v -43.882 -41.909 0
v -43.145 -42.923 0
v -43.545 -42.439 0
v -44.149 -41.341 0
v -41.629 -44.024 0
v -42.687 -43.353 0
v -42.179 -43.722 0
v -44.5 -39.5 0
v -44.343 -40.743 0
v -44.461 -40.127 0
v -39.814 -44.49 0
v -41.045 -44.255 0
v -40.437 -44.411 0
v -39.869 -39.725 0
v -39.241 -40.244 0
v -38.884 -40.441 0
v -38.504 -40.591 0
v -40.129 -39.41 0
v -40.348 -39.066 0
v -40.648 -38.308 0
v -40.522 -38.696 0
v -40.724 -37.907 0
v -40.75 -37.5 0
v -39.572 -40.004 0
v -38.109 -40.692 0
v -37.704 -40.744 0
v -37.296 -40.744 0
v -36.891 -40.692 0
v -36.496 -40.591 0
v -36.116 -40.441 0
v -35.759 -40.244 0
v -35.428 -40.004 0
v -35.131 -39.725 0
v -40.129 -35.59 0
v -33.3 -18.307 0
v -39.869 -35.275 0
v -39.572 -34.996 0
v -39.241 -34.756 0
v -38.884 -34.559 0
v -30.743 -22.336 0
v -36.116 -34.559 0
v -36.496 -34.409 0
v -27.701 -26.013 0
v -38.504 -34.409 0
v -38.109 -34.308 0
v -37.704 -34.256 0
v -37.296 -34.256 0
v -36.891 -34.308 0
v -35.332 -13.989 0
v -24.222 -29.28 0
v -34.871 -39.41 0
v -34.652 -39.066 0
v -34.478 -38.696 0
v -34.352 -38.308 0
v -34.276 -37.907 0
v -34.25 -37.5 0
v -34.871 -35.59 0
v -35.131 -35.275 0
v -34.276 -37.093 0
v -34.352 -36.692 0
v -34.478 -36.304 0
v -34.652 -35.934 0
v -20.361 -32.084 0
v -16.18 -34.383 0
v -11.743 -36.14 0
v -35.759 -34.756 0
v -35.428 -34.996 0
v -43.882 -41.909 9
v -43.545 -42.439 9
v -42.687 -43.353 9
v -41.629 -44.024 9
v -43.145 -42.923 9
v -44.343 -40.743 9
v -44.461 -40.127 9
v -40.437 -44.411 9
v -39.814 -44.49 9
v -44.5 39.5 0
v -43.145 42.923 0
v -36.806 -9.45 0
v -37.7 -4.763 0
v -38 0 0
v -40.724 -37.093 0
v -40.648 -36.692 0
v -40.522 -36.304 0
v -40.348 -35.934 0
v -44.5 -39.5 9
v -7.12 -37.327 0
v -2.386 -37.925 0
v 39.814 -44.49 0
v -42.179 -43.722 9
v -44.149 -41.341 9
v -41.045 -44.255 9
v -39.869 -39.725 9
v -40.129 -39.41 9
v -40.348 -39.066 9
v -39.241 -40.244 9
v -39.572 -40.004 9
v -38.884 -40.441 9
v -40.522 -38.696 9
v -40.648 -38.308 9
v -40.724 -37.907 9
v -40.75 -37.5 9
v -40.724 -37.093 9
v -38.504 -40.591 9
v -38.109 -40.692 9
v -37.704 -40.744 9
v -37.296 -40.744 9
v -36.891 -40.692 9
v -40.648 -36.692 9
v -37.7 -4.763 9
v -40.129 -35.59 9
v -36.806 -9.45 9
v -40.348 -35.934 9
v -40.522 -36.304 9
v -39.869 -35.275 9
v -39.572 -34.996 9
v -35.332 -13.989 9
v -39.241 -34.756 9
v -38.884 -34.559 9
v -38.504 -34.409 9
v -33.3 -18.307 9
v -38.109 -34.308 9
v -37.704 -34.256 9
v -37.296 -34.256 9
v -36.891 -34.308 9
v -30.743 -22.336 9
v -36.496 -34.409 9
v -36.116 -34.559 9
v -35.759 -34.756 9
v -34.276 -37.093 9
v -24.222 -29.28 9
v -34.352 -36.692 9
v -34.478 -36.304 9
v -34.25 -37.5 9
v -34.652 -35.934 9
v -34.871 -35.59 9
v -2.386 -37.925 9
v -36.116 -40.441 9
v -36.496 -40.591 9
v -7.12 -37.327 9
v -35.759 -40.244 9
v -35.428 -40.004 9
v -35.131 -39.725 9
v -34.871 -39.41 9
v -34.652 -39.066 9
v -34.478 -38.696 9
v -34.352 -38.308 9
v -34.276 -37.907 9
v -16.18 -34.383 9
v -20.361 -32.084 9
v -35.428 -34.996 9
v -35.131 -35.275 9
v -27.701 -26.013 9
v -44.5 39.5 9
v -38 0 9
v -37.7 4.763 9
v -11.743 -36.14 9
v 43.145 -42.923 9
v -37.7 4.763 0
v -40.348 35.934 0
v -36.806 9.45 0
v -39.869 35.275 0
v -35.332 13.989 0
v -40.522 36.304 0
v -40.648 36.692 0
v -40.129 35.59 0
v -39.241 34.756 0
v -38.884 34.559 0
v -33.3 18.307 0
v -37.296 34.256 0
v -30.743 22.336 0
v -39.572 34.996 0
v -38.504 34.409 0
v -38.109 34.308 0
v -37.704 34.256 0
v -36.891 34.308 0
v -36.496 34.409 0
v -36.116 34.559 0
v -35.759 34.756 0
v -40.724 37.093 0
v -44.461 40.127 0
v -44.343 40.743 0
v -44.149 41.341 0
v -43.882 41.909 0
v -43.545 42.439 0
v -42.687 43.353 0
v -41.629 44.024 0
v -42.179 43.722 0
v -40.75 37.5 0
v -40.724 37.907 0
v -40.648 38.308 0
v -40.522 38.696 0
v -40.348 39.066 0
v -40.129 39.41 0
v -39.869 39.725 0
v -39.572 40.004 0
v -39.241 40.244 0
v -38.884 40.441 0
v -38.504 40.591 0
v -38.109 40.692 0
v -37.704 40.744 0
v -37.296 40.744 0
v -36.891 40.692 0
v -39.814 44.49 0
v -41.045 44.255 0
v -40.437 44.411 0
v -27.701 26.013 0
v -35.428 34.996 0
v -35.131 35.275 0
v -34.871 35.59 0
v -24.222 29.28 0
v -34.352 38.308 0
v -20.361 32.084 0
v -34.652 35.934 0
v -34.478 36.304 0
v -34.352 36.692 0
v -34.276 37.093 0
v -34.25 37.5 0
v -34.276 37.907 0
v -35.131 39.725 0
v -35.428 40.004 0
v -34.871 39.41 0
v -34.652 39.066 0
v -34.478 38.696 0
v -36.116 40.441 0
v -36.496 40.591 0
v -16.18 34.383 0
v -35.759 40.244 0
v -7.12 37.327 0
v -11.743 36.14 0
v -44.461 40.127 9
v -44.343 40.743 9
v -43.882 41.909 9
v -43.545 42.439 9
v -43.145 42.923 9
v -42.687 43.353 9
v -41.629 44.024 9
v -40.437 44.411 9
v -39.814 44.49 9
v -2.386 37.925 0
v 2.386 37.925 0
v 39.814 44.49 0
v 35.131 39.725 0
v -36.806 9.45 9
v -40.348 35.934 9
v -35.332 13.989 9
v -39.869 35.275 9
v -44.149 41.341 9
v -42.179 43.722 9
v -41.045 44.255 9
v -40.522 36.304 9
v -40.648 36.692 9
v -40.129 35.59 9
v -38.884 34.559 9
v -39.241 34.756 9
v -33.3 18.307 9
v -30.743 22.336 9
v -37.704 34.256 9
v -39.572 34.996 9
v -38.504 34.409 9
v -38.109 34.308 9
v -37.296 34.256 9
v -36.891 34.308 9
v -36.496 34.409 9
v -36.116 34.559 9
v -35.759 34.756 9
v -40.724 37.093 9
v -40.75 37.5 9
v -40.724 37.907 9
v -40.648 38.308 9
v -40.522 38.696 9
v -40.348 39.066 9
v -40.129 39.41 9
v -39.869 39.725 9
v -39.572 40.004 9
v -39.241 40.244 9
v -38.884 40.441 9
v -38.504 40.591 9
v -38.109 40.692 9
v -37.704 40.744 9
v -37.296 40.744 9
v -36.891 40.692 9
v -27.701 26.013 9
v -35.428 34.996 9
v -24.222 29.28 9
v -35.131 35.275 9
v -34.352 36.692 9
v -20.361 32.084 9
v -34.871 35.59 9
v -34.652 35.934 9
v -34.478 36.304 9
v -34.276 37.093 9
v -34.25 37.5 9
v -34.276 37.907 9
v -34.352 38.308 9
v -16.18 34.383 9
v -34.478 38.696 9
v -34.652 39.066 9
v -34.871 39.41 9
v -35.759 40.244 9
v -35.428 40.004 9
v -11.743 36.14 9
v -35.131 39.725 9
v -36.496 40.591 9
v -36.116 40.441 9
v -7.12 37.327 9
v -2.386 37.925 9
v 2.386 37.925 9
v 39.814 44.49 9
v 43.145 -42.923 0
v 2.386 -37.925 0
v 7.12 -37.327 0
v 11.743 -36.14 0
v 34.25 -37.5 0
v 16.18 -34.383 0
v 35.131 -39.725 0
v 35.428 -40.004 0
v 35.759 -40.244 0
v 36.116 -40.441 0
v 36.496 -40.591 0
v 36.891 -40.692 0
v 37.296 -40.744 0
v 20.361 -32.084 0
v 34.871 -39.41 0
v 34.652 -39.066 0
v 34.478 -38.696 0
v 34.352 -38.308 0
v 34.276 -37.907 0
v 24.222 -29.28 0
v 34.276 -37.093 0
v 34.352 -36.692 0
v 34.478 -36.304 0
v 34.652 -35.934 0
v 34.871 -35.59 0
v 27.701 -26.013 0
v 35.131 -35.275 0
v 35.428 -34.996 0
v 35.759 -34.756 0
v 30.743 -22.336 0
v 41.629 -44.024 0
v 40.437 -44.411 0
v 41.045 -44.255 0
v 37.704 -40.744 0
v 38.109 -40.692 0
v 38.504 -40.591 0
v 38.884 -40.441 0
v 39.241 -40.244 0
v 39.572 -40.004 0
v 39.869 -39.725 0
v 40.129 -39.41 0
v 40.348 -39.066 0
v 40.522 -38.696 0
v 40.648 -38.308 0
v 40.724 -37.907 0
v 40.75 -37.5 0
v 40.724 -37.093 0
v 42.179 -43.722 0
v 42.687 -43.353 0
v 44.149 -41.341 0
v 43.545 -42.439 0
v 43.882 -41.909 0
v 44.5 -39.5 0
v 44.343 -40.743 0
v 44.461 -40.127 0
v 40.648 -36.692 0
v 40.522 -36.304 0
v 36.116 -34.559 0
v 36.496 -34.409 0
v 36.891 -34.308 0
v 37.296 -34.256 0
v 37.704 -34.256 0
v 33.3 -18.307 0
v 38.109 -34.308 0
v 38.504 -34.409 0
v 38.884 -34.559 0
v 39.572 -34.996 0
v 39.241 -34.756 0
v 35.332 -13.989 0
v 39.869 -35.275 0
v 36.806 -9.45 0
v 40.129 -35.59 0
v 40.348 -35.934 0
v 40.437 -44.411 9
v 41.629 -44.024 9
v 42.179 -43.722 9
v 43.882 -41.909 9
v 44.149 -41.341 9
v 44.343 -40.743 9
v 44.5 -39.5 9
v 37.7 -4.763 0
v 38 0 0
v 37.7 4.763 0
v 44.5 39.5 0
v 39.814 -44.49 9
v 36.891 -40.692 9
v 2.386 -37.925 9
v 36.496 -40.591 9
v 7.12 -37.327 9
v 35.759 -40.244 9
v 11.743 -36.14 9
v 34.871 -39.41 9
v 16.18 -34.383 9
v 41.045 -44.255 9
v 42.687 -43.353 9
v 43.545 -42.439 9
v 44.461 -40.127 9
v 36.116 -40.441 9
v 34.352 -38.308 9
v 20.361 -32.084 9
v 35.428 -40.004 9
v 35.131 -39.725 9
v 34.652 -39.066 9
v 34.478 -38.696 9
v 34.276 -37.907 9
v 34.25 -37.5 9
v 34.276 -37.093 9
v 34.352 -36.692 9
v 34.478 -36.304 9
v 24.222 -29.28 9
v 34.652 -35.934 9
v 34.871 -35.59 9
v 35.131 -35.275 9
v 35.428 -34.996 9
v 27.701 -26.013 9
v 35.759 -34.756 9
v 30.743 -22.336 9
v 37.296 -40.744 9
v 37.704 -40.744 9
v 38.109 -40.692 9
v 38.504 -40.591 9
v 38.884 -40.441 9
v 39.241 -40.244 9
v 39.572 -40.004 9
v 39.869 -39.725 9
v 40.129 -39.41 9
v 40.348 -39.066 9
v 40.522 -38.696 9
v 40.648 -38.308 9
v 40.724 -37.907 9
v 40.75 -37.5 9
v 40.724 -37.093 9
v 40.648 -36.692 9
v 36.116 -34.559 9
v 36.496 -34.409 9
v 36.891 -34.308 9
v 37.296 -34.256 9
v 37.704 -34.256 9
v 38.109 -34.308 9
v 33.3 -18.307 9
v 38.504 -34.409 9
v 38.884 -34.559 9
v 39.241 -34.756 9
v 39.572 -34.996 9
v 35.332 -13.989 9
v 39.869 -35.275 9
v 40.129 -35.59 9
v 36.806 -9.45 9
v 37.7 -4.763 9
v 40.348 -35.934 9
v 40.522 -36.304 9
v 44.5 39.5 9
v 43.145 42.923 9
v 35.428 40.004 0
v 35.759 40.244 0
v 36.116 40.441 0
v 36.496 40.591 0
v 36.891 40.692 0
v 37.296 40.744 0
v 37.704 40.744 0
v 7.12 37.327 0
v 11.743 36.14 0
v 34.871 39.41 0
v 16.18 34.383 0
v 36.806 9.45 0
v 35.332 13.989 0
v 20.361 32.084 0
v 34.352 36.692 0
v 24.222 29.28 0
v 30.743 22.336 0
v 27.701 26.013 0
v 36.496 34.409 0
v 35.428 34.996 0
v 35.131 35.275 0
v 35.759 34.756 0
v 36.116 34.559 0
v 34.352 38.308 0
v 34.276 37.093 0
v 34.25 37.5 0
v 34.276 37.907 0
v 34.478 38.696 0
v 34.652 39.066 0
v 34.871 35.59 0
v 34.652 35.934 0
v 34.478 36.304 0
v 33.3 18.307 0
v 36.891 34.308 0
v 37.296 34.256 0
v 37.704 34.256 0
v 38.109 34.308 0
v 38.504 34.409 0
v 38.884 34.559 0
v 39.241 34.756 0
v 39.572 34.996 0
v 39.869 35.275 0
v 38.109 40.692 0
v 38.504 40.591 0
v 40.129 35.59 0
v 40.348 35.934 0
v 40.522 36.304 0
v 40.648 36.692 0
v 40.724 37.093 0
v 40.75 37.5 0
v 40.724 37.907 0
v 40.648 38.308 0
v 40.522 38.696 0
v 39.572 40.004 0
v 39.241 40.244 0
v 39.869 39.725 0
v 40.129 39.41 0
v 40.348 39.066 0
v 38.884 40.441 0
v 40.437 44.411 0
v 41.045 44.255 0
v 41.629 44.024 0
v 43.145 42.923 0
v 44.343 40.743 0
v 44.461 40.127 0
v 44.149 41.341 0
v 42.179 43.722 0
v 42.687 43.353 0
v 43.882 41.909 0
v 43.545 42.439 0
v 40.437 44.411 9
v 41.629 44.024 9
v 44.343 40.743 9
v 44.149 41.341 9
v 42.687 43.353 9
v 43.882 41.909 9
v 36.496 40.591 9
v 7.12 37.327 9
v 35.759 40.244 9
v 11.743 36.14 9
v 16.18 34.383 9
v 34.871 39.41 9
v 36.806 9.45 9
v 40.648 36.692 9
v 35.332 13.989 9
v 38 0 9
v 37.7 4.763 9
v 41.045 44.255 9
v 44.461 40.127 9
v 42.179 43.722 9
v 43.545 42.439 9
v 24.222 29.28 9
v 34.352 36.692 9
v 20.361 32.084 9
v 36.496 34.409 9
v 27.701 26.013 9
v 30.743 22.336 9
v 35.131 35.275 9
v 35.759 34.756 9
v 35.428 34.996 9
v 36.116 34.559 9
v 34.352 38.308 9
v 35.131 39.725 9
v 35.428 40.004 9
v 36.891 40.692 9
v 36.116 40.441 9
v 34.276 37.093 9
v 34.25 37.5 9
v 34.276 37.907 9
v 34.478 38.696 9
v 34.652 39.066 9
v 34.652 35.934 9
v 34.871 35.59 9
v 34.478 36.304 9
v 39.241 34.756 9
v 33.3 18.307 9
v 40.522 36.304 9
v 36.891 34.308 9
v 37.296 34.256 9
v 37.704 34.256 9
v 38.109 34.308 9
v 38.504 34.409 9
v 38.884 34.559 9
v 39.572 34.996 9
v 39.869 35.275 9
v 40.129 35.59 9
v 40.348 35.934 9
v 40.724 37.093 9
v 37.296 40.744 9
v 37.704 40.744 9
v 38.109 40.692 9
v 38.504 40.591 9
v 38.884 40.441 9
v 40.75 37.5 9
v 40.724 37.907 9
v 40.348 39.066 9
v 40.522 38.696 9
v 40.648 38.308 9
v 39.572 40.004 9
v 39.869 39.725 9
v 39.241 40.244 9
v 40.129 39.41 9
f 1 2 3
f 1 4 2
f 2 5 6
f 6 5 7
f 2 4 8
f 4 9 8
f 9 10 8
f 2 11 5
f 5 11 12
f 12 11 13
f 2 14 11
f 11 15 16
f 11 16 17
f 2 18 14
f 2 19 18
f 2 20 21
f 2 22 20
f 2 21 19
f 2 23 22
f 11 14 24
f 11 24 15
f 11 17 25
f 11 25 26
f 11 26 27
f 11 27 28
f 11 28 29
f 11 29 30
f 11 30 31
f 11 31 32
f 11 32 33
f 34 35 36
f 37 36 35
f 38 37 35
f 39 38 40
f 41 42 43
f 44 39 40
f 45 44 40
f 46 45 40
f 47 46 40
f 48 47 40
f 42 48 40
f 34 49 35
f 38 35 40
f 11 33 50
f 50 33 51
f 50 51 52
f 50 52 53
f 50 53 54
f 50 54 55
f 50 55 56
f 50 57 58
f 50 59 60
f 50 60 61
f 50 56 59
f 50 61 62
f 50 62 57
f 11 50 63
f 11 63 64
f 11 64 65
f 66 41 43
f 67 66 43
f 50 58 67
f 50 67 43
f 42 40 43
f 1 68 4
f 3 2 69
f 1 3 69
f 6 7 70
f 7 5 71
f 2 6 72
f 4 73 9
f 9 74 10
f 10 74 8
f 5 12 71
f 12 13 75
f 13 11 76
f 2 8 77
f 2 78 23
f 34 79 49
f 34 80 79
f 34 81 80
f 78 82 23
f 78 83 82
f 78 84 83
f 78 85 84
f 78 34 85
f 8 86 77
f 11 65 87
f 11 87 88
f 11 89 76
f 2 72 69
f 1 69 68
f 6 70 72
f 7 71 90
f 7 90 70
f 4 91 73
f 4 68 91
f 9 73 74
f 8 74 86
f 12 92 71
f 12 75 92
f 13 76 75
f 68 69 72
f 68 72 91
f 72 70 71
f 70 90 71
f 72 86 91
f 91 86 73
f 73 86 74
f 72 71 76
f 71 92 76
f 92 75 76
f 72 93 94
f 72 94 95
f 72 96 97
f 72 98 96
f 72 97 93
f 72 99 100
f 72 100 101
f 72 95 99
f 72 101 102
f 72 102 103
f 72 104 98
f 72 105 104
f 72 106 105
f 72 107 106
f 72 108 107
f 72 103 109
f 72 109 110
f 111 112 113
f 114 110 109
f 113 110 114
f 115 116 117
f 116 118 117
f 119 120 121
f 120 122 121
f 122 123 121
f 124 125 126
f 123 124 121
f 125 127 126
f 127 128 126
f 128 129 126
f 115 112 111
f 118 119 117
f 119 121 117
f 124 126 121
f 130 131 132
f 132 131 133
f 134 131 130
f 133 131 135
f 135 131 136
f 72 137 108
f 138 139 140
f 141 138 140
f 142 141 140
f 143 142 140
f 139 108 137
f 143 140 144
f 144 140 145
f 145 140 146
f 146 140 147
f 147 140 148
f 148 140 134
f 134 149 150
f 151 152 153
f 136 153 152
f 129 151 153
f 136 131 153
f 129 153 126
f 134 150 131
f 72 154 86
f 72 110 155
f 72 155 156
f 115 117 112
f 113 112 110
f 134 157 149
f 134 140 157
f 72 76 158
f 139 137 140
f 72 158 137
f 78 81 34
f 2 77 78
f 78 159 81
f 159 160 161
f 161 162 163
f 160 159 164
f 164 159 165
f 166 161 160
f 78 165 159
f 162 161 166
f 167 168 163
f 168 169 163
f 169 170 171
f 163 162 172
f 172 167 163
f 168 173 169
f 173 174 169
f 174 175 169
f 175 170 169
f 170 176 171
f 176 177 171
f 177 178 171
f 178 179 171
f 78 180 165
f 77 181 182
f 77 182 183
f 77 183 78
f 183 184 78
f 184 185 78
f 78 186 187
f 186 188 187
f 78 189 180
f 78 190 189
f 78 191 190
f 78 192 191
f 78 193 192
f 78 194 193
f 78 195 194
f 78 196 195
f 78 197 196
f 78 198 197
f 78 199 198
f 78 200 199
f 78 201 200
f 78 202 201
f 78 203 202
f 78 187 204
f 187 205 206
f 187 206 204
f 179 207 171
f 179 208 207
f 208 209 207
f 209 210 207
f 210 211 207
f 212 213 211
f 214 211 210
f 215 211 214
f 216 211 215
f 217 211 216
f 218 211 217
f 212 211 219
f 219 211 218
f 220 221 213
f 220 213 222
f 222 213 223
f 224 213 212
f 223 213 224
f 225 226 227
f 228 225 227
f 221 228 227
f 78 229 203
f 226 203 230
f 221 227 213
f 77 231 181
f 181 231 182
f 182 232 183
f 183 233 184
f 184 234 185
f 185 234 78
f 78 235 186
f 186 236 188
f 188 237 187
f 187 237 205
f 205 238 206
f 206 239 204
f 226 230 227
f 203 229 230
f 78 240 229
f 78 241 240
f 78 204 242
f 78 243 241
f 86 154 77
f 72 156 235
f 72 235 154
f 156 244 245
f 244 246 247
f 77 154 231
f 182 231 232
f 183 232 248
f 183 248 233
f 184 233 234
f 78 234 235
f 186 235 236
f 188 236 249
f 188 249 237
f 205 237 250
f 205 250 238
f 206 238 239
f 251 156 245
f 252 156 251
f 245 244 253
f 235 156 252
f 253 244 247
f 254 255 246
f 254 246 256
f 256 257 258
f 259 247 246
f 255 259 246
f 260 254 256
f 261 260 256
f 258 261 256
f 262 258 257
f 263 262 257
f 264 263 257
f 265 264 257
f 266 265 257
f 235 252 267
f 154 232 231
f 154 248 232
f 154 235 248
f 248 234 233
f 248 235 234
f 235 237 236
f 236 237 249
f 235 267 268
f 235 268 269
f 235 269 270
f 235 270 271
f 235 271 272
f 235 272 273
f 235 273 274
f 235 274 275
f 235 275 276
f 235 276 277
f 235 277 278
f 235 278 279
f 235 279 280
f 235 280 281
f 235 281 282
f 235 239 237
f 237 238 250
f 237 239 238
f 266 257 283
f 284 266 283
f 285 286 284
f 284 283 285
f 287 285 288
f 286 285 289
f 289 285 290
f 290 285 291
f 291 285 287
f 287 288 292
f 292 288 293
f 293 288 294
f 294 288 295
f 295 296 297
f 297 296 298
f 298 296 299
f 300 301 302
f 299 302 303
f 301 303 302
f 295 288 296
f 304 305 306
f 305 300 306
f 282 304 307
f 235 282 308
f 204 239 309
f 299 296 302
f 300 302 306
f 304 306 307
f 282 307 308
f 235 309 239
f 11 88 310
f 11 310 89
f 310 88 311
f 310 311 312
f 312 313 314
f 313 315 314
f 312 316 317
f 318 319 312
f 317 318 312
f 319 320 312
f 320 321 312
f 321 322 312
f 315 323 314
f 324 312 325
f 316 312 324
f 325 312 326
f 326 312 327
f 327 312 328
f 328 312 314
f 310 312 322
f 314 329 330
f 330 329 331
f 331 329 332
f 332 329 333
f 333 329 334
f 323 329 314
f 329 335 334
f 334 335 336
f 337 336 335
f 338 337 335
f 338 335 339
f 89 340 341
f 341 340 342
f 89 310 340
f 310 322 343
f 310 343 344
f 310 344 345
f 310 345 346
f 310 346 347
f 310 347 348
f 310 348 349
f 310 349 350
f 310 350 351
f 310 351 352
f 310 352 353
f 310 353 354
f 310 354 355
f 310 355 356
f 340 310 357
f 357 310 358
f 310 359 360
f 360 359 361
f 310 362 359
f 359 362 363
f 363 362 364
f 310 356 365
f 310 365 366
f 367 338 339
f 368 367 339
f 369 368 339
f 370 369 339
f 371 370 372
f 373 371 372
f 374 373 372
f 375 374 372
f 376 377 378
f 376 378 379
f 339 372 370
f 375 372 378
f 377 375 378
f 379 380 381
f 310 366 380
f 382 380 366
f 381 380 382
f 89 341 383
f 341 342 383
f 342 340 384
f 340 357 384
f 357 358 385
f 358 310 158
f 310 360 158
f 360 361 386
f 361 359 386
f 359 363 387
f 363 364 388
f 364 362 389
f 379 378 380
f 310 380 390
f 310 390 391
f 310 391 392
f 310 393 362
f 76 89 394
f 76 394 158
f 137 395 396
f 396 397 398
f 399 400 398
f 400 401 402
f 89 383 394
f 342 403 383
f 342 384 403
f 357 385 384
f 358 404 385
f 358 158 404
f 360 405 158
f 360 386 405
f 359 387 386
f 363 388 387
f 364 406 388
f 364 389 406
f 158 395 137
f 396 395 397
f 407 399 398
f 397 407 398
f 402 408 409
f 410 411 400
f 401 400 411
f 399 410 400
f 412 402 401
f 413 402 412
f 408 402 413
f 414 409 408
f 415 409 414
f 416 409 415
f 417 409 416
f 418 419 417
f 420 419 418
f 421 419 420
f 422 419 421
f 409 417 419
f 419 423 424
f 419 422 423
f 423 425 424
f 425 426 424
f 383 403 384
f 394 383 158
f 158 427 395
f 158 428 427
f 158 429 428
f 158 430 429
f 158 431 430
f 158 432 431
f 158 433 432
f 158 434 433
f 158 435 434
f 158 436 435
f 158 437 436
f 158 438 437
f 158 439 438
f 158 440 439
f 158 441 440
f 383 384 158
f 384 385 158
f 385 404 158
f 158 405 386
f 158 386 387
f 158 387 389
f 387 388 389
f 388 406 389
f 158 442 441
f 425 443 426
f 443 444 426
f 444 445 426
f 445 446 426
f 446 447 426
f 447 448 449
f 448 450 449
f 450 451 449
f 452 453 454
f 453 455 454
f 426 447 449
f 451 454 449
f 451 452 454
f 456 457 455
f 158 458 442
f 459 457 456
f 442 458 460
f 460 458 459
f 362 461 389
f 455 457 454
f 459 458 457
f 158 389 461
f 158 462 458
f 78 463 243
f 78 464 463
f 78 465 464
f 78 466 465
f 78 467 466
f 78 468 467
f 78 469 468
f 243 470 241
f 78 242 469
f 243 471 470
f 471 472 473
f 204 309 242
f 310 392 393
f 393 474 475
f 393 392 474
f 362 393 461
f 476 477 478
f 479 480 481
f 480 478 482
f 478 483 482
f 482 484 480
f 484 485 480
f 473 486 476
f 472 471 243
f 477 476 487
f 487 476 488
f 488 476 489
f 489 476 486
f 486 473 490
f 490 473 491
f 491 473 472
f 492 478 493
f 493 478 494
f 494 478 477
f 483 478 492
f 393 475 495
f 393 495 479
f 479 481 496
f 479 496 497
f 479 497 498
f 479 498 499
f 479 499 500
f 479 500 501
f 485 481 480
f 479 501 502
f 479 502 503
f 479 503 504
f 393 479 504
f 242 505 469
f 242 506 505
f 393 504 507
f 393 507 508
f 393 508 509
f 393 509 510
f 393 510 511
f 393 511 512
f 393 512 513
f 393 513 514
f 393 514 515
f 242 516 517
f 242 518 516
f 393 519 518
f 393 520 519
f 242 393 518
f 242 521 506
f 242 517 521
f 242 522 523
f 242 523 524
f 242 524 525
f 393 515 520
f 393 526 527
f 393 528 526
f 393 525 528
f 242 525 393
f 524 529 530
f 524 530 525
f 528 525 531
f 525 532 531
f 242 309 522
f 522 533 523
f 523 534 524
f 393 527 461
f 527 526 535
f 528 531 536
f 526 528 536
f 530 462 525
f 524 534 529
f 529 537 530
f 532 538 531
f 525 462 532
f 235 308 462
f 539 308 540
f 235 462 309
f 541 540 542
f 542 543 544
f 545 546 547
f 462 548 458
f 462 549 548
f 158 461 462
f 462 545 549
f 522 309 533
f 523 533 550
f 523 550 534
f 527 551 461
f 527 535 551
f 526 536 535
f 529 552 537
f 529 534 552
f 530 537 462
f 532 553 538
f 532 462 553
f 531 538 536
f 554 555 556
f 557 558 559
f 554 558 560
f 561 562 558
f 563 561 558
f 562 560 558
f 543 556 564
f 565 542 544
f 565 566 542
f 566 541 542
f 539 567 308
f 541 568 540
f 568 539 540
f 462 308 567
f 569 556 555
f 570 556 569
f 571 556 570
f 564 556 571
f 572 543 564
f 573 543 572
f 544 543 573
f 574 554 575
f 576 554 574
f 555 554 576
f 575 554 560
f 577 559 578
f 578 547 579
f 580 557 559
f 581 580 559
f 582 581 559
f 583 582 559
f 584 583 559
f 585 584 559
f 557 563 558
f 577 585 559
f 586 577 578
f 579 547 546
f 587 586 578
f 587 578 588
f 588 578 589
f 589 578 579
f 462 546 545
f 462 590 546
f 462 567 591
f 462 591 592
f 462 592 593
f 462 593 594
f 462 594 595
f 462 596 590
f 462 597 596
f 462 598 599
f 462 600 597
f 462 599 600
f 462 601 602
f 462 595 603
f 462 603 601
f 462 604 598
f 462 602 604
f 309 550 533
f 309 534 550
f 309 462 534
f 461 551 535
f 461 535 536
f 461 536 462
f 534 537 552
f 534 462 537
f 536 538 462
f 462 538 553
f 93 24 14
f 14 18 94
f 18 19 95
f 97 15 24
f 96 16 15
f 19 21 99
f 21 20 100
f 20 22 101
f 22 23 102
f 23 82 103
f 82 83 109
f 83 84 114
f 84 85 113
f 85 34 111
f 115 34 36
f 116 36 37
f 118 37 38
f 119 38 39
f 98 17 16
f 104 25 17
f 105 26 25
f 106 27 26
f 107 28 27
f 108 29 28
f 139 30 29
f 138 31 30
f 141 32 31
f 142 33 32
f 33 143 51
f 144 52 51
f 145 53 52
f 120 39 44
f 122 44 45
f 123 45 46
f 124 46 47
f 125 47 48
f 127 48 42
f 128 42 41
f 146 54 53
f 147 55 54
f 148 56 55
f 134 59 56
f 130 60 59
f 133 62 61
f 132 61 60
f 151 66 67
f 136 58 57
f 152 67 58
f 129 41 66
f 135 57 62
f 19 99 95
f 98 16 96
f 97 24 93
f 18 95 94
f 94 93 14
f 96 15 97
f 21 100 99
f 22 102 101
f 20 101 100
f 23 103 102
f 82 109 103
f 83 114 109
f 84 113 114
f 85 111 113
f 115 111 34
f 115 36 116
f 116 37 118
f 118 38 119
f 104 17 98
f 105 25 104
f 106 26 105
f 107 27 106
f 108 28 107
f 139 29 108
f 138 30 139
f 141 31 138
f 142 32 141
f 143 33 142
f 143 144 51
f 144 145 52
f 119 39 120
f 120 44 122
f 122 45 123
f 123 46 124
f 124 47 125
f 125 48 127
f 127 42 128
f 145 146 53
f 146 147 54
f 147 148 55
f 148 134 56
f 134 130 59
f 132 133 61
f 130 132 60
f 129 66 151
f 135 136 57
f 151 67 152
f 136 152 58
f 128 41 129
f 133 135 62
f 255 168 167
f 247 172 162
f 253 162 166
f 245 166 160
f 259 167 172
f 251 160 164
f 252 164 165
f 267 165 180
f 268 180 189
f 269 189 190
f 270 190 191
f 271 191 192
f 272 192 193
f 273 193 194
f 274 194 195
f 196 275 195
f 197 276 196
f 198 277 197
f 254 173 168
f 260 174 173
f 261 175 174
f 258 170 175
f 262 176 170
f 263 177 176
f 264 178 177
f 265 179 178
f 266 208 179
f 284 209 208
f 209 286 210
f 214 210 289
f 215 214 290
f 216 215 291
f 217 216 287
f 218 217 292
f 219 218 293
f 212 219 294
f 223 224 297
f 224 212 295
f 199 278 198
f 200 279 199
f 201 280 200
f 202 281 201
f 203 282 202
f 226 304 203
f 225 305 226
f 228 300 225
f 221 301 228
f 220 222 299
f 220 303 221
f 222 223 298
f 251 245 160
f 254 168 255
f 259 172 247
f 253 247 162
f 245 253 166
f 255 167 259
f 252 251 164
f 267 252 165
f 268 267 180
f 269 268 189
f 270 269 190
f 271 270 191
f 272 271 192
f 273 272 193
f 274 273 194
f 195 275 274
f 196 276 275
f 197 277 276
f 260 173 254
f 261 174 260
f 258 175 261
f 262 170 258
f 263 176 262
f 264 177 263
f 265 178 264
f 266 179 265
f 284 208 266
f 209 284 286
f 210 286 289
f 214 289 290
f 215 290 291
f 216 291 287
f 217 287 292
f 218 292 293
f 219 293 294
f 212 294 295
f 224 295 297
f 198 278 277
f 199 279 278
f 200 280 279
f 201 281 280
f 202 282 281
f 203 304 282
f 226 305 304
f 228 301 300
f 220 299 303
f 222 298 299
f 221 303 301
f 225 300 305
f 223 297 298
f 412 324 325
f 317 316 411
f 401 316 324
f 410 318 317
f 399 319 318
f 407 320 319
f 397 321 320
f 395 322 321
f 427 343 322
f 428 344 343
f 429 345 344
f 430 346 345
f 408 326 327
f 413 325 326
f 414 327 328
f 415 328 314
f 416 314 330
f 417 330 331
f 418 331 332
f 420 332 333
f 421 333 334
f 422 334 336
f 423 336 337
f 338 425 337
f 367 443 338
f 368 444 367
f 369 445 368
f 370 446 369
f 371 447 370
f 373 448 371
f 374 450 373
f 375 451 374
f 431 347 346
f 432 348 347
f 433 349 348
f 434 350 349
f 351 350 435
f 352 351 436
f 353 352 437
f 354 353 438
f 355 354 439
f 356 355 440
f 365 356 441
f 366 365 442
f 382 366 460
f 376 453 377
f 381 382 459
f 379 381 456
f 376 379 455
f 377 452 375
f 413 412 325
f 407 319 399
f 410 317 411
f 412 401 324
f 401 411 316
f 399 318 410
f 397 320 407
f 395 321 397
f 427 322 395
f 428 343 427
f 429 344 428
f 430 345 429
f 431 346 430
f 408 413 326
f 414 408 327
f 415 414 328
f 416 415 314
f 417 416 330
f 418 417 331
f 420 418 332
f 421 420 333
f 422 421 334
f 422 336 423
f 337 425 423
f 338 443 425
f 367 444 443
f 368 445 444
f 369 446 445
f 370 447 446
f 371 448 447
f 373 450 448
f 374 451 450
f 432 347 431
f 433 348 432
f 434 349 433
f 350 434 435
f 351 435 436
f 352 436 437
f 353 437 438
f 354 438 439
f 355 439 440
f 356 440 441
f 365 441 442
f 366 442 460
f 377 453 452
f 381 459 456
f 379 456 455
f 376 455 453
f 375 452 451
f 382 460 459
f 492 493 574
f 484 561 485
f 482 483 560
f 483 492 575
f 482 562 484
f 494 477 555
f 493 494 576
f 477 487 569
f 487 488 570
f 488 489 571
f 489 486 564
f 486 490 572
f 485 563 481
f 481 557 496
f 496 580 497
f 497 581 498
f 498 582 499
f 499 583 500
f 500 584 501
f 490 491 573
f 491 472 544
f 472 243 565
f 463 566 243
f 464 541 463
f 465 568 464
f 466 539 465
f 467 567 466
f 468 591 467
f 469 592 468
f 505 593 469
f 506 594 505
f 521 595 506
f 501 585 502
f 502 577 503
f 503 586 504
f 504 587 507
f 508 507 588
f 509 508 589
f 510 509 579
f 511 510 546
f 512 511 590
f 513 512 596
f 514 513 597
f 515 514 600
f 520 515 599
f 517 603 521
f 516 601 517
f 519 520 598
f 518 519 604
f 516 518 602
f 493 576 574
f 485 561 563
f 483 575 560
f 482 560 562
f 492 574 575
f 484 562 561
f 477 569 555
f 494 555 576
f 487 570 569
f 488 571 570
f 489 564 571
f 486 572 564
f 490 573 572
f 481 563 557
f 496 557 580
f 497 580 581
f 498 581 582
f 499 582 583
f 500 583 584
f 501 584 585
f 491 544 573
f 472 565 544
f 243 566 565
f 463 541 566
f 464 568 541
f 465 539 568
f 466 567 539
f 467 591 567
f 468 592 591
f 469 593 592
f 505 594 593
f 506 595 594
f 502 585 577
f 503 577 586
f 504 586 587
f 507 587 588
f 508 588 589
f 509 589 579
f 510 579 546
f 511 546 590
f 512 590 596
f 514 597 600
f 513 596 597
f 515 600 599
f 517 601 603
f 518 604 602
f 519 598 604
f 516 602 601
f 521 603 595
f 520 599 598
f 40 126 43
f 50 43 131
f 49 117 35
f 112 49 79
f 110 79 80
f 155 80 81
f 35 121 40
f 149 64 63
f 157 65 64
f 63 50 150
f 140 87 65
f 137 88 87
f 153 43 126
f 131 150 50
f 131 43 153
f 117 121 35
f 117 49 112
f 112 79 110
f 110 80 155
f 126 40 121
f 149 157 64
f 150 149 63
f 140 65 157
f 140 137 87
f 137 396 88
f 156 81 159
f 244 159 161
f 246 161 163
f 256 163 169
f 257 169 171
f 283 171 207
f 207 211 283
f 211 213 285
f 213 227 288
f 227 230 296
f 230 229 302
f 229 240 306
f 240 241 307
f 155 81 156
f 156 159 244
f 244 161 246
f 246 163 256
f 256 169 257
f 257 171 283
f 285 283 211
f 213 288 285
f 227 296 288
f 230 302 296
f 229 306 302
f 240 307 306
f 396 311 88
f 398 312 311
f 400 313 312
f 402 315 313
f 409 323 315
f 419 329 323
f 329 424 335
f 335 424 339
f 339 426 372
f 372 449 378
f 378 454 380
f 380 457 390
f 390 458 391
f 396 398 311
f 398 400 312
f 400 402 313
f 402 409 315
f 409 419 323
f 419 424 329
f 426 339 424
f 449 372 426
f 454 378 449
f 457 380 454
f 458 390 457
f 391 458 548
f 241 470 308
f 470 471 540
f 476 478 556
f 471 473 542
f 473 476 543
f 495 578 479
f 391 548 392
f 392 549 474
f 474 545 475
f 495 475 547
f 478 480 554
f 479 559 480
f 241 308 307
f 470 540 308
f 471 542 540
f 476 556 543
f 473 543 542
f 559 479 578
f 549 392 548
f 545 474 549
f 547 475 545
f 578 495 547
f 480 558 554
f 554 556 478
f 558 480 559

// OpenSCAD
$fn = 50;

difference() {
	union() {
		hull() {
			translate(v = [-39.5, 39.5, 0]) {
				cylinder(h = 9, r = 5);
			}
			translate(v = [39.5, 39.5, 0]) {
				cylinder(h = 9, r = 5);
			}
			translate(v = [-39.5, -39.5, 0]) {
				cylinder(h = 9, r = 5);
			}
			translate(v = [39.5, -39.5, 0]) {
				cylinder(h = 9, r = 5);
			}
		}
	}
	union() {
		translate(v = [-37.5, -37.5, -100.0]) {
			cylinder(h = 200, r = 3.25);
		}
		translate(v = [-37.5, 37.5, -100.0]) {
			cylinder(h = 200, r = 3.25);
		}
		translate(v = [37.5, -37.5, -100.0]) {
			cylinder(h = 200, r = 3.25);
		}
		translate(v = [37.5, 37.5, -100.0]) {
			cylinder(h = 200, r = 3.25);
		}
		translate(v = [-37.5, -37.5, -100.0]) {
			cylinder(h = 200, r = 1.8);
		}
		translate(v = [-37.5, 37.5, -100.0]) {
			cylinder(h = 200, r = 1.8);
		}
		translate(v = [37.5, -37.5, -100.0]) {
			cylinder(h = 200, r = 1.8);
		}
		translate(v = [37.5, 37.5, -100.0]) {
			cylinder(h = 200, r = 1.8);
		}
		cylinder(h = 9, r = 38.0);
	}
}
